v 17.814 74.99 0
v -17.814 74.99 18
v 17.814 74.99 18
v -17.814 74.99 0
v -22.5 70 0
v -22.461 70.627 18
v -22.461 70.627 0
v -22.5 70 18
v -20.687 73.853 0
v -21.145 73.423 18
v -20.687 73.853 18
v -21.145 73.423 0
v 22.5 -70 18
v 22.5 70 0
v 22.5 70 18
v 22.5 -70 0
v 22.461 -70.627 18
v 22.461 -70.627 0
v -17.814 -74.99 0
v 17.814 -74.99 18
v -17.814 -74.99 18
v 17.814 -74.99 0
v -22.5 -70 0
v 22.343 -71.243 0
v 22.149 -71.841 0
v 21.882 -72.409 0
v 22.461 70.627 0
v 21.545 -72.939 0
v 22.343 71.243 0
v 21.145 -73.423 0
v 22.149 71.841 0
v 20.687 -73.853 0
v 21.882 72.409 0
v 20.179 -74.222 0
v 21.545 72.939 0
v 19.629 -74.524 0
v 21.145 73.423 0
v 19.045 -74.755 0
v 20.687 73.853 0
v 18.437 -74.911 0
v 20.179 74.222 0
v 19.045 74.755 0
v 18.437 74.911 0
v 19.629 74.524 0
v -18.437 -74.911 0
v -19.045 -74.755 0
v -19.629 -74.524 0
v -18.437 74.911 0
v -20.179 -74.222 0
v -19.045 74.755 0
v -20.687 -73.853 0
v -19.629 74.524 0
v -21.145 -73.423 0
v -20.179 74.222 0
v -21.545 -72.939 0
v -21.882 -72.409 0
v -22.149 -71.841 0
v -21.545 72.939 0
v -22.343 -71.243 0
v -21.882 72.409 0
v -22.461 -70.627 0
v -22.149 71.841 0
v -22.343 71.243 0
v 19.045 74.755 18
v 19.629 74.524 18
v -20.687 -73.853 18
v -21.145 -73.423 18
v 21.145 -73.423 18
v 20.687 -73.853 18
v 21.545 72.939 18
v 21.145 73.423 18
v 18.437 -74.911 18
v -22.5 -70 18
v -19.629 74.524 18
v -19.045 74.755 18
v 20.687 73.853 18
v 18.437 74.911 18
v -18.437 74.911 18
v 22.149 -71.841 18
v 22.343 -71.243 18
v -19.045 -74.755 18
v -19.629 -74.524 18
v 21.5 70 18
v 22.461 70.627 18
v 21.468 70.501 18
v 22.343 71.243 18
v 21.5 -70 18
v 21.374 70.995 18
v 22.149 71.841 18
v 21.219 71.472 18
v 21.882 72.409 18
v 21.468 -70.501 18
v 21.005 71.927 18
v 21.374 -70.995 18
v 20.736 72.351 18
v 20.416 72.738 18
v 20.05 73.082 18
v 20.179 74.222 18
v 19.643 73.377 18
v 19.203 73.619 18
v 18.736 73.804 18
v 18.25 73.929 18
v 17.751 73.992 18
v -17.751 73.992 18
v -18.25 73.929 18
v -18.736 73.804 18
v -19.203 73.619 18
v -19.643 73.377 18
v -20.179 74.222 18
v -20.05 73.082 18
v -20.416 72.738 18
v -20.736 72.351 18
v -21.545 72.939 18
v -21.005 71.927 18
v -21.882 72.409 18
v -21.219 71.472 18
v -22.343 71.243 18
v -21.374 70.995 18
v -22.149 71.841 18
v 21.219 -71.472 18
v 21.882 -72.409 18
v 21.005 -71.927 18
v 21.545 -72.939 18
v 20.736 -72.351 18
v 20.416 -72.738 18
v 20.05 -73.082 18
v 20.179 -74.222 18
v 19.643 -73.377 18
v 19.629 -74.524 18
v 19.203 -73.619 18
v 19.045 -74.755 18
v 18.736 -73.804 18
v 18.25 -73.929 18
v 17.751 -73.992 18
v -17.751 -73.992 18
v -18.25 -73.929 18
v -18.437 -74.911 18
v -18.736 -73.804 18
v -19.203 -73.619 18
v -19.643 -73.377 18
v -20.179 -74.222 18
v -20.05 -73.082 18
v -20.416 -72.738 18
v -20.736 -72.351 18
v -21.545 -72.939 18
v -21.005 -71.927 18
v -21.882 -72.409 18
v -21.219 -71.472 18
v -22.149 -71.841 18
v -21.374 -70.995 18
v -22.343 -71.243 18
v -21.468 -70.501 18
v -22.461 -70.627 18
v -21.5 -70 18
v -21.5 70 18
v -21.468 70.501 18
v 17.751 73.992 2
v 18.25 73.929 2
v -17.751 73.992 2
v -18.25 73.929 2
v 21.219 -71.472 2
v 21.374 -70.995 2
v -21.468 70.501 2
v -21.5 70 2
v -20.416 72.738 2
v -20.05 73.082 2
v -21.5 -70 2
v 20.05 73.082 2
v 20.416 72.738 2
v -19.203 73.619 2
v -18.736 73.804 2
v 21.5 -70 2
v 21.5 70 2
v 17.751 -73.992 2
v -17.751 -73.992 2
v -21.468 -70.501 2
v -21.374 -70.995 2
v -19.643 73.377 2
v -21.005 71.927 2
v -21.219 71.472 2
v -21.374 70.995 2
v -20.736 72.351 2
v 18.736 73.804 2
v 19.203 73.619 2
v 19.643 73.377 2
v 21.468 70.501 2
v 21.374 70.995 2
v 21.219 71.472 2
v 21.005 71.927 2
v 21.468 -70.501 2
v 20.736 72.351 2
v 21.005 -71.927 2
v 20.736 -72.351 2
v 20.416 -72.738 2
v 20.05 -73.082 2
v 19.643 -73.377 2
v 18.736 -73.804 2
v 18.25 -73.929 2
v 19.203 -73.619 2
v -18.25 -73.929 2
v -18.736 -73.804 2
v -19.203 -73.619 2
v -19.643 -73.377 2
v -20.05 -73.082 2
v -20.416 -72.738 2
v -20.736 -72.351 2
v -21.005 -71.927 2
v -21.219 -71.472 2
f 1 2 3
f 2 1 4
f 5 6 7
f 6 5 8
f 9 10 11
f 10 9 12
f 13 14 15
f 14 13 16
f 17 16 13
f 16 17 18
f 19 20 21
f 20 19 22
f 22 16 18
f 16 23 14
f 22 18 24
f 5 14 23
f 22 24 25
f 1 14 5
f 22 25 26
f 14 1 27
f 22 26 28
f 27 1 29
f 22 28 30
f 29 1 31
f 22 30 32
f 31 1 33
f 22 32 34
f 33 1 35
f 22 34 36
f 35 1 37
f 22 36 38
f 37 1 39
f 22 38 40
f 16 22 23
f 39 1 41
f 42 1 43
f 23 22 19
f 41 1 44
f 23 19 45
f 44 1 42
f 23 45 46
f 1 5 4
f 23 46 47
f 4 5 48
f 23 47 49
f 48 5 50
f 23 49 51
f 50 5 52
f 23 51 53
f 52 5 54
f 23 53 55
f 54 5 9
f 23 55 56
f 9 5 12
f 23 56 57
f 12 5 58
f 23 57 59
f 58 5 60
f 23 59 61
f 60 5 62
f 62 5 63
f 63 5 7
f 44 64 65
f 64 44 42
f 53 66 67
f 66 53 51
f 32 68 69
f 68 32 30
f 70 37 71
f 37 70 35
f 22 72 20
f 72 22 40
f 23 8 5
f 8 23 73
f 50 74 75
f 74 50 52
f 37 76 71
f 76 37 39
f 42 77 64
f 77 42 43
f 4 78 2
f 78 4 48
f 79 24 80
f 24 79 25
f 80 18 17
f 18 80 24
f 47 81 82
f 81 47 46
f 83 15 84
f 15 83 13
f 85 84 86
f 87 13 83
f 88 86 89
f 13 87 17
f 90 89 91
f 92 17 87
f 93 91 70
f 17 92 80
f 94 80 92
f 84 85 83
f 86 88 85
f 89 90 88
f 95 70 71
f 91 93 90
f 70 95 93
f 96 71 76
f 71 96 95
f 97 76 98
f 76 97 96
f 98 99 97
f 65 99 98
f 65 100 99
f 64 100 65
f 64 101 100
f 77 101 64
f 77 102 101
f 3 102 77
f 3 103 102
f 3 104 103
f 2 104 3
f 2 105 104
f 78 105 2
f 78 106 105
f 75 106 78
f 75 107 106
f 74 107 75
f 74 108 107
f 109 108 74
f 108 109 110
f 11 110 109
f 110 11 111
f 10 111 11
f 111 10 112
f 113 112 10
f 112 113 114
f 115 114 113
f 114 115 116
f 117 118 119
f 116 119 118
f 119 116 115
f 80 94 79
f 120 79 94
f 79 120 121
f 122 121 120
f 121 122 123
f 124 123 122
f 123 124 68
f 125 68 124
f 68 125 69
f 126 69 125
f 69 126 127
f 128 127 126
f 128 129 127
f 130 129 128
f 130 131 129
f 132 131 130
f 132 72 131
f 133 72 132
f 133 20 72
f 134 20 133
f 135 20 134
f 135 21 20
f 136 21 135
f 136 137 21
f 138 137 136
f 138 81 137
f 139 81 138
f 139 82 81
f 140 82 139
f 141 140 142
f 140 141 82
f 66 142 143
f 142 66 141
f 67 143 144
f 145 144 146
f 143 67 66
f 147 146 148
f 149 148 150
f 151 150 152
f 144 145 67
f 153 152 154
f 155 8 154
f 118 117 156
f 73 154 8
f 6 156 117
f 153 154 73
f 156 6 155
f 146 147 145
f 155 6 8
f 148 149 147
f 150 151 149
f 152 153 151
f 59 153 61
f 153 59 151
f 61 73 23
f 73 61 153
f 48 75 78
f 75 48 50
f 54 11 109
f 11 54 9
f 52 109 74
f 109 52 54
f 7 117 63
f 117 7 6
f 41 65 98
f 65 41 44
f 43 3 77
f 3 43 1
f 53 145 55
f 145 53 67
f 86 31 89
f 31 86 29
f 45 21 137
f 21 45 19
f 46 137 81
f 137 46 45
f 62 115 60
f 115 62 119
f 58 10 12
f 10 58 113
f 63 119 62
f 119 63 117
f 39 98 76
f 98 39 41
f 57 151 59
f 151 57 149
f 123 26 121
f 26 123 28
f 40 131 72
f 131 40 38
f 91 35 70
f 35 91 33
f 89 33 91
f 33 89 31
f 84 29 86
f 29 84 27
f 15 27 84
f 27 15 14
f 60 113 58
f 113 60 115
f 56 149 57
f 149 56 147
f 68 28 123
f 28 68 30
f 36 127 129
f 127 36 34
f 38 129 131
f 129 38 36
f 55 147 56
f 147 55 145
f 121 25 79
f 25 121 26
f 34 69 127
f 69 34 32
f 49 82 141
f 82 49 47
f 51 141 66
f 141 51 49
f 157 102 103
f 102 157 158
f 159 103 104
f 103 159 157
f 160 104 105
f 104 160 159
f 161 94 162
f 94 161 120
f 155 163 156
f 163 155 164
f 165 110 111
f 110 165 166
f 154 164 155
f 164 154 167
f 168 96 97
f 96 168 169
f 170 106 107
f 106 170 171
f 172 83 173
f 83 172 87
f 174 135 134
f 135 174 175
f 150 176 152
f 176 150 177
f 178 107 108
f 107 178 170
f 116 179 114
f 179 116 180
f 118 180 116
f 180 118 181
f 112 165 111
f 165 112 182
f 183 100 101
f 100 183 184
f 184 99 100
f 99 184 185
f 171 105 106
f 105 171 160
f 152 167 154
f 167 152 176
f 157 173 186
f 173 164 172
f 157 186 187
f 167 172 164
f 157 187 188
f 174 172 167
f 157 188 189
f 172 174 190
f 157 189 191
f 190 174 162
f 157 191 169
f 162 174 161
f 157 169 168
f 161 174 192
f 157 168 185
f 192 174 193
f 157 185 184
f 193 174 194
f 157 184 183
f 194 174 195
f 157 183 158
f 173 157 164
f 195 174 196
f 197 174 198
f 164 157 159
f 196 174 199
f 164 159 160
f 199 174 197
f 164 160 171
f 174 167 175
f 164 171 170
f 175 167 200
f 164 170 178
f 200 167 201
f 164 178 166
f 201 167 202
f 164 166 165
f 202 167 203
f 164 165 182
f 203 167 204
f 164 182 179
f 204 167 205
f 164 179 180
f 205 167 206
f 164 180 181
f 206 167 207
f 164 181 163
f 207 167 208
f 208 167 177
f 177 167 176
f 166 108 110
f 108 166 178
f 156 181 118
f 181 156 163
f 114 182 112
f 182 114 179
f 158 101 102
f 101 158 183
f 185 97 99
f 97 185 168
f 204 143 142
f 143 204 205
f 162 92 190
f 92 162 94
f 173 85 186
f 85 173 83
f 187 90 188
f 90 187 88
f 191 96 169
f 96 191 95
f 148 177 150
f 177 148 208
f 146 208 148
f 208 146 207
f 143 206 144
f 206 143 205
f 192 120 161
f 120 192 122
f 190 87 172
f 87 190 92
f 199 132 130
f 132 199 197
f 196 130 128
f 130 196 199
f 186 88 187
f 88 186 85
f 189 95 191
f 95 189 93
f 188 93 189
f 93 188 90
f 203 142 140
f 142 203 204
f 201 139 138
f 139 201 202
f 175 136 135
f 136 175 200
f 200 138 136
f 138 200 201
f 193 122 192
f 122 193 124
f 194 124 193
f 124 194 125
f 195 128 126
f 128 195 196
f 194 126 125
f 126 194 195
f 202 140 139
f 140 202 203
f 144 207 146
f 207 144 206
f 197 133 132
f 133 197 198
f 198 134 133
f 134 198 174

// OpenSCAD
$fn = 50;


difference() {
	union() {
		hull() {
			translate(v = [-17.5000000000, 70.0000000000, 0]) {
				cylinder(h = 18, r = 5);
			}
			translate(v = [17.5000000000, 70.0000000000, 0]) {
				cylinder(h = 18, r = 5);
			}
			translate(v = [-17.5000000000, -70.0000000000, 0]) {
				cylinder(h = 18, r = 5);
			}
			translate(v = [17.5000000000, -70.0000000000, 0]) {
				cylinder(h = 18, r = 5);
			}
		}
	}
	union() {
		translate(v = [0, 0, 2]) {
			hull() {
				translate(v = [-17.5000000000, 70.0000000000, 0]) {
					cylinder(h = 16, r = 4);
				}
				translate(v = [17.5000000000, 70.0000000000, 0]) {
					cylinder(h = 16, r = 4);
				}
				translate(v = [-17.5000000000, -70.0000000000, 0]) {
					cylinder(h = 16, r = 4);
				}
				translate(v = [17.5000000000, -70.0000000000, 0]) {
					cylinder(h = 16, r = 4);
				}
			}
		}
	}
}
